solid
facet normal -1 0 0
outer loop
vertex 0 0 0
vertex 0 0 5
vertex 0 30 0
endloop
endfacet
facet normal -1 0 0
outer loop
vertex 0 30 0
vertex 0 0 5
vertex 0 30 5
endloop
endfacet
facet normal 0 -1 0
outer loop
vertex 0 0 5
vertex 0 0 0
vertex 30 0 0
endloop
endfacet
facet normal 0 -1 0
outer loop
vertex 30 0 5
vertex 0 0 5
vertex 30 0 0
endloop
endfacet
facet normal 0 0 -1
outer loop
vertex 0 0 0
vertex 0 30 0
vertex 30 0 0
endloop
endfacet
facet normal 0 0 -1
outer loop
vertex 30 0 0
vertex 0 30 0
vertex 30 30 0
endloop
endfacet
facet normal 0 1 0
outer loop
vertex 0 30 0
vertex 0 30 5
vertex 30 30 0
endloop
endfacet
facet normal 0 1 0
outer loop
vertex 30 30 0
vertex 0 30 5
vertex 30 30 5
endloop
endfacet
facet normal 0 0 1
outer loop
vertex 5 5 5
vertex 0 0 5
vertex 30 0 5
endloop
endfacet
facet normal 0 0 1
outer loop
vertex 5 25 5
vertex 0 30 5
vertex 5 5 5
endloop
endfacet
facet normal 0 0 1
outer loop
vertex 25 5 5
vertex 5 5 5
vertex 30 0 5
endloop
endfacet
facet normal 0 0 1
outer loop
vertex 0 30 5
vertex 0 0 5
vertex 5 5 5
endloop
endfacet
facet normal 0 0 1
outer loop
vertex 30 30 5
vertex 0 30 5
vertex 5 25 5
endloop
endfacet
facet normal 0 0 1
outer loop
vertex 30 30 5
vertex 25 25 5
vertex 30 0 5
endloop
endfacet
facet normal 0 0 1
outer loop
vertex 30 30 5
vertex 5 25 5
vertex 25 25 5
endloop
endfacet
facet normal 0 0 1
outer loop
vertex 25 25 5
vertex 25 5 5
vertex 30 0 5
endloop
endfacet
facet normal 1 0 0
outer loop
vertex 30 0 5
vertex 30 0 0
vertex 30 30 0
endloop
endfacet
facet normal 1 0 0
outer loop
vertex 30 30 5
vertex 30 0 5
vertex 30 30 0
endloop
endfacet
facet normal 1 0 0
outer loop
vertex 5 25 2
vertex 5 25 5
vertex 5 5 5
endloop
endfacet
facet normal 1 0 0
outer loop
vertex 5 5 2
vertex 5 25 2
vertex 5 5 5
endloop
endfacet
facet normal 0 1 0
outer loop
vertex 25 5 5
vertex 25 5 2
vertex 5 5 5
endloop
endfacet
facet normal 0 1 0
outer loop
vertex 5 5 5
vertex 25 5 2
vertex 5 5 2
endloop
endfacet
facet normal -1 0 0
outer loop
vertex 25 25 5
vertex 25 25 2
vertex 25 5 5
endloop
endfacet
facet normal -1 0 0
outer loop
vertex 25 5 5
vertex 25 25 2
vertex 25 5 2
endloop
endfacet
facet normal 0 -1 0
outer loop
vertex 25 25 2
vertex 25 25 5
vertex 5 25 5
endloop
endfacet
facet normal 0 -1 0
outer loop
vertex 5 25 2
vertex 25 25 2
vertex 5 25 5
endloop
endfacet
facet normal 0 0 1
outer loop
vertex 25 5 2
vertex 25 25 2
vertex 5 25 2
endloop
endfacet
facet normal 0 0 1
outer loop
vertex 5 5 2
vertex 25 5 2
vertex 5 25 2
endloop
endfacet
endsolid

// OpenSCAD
difference() {
	cube([30, 30, 5]);
	translate ([5, 5, 2]) cube([20, 20, 3]);
}
